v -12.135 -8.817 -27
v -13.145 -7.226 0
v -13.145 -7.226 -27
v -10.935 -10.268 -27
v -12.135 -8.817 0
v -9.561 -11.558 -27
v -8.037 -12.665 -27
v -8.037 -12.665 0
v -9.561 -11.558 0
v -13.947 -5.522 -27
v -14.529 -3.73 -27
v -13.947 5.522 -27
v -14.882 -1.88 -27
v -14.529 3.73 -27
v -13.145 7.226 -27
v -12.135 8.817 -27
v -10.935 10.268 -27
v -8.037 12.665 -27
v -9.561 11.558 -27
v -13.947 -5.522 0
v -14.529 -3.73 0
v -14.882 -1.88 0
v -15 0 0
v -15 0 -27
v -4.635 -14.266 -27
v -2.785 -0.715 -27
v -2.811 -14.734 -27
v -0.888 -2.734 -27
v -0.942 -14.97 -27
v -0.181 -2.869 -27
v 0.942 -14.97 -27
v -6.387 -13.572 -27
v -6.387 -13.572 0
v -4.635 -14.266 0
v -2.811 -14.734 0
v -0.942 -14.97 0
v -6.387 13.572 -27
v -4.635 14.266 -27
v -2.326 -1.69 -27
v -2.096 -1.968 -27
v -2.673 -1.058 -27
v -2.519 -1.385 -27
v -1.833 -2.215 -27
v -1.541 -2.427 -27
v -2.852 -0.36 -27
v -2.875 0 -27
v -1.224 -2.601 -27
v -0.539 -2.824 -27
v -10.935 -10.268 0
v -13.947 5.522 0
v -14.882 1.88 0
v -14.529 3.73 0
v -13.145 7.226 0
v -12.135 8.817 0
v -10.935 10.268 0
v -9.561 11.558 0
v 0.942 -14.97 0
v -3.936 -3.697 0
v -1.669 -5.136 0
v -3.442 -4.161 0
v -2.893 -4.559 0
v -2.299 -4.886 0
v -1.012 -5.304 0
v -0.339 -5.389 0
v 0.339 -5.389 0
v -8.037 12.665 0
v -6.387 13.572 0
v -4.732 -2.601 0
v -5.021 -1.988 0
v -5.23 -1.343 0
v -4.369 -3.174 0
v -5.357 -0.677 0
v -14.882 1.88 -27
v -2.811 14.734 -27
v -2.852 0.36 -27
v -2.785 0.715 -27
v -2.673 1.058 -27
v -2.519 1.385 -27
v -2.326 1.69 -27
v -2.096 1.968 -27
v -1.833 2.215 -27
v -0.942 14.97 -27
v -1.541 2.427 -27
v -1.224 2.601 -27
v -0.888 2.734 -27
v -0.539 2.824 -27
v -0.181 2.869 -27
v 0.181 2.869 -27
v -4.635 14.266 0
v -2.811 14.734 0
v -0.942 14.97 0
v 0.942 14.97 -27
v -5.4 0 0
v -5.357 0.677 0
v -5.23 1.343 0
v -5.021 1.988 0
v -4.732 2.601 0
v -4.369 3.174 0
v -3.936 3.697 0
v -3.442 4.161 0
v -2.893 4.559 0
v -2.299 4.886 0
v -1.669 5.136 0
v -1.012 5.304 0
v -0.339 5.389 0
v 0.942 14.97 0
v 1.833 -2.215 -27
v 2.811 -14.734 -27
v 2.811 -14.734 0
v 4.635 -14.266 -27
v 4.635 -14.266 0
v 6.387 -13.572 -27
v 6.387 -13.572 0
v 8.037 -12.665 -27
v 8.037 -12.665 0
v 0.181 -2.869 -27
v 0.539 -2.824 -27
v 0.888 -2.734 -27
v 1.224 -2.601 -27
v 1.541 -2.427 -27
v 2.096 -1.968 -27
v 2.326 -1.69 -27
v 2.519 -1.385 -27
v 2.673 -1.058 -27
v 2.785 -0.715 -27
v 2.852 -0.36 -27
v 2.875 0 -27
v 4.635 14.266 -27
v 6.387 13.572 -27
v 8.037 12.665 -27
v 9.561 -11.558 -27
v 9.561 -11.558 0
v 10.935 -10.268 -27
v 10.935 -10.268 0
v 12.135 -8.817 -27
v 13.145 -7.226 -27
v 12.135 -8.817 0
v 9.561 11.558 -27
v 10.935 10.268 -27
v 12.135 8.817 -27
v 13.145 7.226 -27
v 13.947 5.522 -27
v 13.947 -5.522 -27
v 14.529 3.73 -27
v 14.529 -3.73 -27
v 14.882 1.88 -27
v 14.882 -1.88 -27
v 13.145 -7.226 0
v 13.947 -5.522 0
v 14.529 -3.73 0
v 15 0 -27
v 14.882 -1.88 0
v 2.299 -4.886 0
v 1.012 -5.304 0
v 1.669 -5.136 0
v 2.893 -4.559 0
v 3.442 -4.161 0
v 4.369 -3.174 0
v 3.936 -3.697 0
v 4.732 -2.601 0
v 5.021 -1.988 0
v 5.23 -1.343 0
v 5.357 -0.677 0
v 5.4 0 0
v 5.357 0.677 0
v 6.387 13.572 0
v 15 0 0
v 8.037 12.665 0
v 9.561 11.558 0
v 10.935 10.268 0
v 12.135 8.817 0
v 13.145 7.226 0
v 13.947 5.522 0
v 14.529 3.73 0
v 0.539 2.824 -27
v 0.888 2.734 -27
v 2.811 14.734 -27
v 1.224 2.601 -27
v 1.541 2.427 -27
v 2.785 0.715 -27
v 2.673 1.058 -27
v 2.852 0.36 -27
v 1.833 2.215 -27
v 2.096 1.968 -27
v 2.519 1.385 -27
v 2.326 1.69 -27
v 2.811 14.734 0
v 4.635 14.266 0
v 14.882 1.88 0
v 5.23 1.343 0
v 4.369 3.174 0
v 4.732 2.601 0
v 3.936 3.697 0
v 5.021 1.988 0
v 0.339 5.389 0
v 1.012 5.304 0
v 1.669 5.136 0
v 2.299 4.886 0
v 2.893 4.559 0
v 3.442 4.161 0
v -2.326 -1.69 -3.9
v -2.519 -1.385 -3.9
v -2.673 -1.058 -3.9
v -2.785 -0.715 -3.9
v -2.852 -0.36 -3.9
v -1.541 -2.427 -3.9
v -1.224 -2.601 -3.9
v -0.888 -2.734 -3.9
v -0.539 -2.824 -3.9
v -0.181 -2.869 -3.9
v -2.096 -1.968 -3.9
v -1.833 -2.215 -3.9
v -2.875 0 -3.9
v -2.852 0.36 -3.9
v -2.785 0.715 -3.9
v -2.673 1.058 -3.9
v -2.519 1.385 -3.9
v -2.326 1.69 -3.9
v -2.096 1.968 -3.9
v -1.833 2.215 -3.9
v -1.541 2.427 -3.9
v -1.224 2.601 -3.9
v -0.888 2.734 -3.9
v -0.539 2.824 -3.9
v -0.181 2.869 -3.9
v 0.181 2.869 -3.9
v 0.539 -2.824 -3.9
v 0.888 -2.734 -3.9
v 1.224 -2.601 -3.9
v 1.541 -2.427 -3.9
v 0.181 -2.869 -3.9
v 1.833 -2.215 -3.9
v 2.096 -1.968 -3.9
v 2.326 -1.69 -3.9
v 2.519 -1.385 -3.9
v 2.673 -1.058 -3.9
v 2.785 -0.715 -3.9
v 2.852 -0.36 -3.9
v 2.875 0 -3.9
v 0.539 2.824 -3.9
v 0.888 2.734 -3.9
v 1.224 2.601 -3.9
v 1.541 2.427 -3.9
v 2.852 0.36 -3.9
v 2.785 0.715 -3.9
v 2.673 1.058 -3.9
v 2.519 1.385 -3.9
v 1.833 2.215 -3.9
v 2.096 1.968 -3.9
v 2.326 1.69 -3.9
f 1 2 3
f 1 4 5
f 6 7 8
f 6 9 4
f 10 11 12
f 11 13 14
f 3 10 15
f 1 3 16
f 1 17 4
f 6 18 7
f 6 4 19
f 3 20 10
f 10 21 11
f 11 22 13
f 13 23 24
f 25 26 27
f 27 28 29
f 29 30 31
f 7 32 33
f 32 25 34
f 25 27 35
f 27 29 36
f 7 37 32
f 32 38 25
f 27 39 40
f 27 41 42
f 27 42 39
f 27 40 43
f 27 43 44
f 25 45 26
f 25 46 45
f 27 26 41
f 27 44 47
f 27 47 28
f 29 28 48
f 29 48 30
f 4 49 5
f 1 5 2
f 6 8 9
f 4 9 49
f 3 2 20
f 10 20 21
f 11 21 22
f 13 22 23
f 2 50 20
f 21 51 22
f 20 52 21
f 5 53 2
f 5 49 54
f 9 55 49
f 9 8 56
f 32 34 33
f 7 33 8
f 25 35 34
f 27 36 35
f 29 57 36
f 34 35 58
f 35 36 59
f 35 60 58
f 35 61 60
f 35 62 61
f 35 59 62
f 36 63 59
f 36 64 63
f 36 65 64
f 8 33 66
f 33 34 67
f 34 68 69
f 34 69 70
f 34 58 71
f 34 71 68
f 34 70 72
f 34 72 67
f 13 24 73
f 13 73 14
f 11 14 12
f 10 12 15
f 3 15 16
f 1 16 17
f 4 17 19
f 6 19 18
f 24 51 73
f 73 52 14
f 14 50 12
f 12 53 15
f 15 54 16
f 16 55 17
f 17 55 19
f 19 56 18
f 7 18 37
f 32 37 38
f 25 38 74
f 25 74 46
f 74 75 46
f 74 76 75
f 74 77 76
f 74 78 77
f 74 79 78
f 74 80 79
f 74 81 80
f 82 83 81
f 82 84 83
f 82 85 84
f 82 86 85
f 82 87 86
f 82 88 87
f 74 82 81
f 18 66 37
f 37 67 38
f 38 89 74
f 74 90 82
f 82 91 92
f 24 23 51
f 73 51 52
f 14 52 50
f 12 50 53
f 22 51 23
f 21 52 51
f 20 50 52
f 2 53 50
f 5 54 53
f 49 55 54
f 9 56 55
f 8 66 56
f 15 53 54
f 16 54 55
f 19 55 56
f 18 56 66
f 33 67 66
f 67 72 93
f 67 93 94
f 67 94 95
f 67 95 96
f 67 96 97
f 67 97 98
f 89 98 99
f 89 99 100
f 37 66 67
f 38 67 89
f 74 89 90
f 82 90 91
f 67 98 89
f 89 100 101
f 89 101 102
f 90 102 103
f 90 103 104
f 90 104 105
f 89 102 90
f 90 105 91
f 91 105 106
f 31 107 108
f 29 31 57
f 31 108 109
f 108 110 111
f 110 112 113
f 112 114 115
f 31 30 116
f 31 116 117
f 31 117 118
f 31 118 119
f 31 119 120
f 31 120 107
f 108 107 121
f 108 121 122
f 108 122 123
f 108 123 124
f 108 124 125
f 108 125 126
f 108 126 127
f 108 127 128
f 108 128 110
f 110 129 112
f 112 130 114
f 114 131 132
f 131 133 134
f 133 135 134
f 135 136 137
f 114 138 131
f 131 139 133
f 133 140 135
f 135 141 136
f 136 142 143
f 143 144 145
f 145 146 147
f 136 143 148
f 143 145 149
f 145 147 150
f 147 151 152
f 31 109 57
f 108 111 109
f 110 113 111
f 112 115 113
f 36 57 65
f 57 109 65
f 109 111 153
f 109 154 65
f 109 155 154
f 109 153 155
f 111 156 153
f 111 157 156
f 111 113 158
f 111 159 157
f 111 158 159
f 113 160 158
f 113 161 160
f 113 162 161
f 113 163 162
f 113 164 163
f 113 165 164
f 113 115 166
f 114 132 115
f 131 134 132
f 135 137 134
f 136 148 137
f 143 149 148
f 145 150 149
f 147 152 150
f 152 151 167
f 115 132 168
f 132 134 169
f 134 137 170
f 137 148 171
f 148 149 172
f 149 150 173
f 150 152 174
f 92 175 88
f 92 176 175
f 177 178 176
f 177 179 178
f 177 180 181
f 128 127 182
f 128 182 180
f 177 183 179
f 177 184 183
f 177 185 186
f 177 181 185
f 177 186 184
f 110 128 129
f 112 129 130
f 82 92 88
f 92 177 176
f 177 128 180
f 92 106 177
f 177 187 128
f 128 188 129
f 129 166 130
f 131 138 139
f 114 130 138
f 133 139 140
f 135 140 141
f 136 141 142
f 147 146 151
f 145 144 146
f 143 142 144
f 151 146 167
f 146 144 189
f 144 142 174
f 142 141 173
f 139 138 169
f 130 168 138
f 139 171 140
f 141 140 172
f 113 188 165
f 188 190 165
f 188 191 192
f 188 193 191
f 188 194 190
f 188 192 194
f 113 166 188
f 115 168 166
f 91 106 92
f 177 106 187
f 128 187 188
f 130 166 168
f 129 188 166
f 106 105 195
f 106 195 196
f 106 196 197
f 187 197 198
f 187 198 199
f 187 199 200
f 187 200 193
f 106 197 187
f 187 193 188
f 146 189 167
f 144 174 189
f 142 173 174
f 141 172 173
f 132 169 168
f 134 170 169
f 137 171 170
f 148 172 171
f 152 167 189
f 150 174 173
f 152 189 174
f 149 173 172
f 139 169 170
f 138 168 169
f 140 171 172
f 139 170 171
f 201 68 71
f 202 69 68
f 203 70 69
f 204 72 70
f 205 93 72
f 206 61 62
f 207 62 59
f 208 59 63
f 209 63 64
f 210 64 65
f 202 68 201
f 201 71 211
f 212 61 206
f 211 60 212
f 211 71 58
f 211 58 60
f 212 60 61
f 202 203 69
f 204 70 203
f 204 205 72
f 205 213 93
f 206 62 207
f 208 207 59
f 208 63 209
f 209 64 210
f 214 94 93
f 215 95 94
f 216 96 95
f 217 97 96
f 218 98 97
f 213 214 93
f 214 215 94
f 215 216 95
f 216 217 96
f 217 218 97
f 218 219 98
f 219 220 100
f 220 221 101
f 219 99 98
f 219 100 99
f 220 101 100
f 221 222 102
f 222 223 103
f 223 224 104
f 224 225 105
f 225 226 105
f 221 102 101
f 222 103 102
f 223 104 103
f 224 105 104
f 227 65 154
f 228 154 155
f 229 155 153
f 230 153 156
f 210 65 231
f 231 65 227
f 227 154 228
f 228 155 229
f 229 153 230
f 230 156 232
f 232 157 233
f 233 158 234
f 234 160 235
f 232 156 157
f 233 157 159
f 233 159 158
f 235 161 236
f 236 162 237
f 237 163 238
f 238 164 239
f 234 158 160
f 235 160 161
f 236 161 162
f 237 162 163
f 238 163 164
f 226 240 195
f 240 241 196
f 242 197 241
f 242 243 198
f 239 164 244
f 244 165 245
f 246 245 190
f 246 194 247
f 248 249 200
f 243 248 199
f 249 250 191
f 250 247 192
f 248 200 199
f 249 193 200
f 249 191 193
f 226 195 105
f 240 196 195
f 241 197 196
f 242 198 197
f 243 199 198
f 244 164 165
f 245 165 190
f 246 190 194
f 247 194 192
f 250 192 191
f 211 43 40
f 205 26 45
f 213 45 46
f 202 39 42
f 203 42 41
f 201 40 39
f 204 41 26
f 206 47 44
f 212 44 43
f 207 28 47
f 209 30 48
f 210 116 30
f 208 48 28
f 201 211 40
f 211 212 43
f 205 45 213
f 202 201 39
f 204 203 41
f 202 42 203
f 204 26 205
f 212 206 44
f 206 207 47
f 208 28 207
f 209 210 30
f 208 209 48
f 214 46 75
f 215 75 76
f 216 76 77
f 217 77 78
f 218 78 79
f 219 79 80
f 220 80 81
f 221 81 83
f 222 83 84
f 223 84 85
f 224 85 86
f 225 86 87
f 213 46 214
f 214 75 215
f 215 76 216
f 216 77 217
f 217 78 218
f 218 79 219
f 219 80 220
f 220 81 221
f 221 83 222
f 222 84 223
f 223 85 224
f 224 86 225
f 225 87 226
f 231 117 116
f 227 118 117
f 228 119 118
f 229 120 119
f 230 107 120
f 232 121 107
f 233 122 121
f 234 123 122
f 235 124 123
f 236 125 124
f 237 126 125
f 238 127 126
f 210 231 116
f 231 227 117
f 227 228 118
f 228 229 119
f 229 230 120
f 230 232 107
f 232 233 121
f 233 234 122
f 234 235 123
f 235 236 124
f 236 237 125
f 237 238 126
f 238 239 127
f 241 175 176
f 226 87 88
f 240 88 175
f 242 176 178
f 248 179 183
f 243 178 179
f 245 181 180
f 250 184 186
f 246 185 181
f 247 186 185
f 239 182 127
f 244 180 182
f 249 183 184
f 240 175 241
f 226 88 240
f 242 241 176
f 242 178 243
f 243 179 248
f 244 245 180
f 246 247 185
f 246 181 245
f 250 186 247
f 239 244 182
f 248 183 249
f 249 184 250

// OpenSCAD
$fn = 50;

difference() {
	union() {
		translate(v = [0, 0, -27.0]) {
			cylinder(h = 27, r = 15.0);
		}
		#translate(v = [0, 0, -30.0]) {
			cylinder(h = 30, r = 2.875);
		}
	}
	union() {
		translate(v = [0, 0, 0]) {
			rotate(a = [0, 0, 0]) {
				difference() {
					union() {
						translate(v = [0, 0, -30.0]) {
							cylinder(h = 30, r = 2.6);
						}
						translate(v = [0, 0, -3.9]) {
							cylinder(h = 3.9, r1 = 2.875, r2 = 5.4);
						}
						translate(v = [0, 0, -30.0]) {
							cylinder(h = 30, r = 2.875);
						}
						translate(v = [0, 0, -30.0]) {
							cylinder(h = 30, r = 2.6);
						}
					}
					union();
				}
			}
		}
	}
}
